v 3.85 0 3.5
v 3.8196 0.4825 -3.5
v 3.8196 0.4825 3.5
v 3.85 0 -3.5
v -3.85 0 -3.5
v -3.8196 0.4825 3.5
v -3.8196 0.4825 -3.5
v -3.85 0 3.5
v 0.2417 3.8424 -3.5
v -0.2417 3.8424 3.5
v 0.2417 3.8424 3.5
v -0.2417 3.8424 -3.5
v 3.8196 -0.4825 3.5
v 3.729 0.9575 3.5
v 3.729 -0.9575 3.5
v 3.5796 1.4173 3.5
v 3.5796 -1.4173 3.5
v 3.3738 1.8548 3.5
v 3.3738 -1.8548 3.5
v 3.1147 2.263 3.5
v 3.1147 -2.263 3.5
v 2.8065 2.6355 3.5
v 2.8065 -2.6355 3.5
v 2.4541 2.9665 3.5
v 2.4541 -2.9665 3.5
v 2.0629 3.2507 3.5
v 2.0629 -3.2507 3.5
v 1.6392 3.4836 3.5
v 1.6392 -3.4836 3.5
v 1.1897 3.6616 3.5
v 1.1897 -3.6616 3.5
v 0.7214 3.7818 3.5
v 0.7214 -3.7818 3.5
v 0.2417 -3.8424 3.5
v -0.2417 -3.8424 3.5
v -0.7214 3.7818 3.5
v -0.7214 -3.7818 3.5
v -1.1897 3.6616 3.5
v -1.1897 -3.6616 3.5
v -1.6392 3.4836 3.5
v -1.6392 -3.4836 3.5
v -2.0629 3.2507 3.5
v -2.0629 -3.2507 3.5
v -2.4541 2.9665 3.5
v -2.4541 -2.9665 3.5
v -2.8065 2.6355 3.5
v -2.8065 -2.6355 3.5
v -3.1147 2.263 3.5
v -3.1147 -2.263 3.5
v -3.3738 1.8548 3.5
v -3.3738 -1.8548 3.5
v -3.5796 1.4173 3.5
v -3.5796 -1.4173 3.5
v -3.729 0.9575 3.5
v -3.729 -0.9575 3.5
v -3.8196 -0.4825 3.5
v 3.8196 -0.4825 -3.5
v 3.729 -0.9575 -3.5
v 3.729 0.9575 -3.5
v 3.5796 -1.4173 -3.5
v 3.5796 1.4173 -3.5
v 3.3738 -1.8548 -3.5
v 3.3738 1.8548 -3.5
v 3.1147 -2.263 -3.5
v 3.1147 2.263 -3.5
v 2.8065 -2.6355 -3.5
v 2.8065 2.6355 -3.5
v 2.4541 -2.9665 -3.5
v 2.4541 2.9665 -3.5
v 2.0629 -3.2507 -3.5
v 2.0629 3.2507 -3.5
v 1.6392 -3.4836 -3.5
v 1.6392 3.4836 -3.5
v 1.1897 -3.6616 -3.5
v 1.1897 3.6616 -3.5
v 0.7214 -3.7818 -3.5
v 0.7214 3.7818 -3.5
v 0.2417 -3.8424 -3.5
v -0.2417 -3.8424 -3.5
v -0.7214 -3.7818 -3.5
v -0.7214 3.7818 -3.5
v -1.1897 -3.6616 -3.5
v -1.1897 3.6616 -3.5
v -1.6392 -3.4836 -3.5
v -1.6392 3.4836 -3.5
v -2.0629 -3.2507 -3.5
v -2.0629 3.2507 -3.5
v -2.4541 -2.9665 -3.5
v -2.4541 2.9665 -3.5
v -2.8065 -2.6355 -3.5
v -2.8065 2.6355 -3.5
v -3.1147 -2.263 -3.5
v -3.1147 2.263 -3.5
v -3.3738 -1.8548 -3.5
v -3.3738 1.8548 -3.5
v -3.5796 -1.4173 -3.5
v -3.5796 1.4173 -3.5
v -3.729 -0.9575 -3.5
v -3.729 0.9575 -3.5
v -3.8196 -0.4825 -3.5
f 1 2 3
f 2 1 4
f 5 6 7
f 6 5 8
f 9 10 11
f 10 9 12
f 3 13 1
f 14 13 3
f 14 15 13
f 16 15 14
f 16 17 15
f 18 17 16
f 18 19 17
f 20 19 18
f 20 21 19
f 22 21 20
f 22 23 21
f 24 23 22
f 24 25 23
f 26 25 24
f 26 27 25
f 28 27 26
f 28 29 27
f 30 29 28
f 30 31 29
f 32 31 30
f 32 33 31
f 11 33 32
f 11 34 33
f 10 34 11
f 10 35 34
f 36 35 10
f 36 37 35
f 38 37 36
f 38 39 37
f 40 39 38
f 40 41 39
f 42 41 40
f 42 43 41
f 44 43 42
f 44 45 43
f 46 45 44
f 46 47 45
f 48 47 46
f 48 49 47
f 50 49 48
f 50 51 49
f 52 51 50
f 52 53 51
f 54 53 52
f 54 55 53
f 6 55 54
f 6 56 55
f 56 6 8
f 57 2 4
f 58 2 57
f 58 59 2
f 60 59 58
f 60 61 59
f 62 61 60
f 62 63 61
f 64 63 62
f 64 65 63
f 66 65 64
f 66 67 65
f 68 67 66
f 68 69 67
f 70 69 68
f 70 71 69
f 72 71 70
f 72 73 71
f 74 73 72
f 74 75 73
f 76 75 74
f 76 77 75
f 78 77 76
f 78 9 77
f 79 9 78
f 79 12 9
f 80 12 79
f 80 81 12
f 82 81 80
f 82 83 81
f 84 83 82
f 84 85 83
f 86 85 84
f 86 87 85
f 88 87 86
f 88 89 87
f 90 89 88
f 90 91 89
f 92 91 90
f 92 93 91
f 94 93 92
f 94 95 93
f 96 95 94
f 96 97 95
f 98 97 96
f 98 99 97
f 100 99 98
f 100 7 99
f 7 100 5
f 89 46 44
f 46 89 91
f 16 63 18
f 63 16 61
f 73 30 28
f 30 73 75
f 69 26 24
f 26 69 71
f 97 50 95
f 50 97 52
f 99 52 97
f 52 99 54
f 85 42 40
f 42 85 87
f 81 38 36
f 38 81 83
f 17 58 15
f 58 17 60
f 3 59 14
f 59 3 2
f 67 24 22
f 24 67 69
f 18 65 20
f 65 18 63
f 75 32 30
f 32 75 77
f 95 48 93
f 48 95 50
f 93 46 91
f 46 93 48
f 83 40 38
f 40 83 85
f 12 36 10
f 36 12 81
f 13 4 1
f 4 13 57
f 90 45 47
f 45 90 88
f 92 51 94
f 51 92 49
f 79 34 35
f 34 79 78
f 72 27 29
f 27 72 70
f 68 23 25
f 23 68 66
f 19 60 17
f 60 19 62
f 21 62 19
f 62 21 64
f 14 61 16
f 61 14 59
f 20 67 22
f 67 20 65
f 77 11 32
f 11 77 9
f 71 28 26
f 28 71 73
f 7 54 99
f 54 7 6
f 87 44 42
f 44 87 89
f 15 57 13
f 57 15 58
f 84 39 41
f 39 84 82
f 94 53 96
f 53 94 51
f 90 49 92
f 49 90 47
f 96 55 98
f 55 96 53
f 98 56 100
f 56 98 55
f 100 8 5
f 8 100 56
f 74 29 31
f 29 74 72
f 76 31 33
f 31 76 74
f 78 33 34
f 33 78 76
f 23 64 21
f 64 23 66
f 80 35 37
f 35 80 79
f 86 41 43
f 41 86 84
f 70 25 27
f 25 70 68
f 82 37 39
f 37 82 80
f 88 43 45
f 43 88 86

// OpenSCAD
$fn = 50;


difference() {
	union() {
		translate(v = [0, 0, -3.5000000000]) {
			cylinder(h = 7, r = 3.8500000000);
		}
	}
	union() {
		translate(v = [0, 0, -100.0000000000]) {
			cylinder(h = 200, r = 0);
		}
	}
}
